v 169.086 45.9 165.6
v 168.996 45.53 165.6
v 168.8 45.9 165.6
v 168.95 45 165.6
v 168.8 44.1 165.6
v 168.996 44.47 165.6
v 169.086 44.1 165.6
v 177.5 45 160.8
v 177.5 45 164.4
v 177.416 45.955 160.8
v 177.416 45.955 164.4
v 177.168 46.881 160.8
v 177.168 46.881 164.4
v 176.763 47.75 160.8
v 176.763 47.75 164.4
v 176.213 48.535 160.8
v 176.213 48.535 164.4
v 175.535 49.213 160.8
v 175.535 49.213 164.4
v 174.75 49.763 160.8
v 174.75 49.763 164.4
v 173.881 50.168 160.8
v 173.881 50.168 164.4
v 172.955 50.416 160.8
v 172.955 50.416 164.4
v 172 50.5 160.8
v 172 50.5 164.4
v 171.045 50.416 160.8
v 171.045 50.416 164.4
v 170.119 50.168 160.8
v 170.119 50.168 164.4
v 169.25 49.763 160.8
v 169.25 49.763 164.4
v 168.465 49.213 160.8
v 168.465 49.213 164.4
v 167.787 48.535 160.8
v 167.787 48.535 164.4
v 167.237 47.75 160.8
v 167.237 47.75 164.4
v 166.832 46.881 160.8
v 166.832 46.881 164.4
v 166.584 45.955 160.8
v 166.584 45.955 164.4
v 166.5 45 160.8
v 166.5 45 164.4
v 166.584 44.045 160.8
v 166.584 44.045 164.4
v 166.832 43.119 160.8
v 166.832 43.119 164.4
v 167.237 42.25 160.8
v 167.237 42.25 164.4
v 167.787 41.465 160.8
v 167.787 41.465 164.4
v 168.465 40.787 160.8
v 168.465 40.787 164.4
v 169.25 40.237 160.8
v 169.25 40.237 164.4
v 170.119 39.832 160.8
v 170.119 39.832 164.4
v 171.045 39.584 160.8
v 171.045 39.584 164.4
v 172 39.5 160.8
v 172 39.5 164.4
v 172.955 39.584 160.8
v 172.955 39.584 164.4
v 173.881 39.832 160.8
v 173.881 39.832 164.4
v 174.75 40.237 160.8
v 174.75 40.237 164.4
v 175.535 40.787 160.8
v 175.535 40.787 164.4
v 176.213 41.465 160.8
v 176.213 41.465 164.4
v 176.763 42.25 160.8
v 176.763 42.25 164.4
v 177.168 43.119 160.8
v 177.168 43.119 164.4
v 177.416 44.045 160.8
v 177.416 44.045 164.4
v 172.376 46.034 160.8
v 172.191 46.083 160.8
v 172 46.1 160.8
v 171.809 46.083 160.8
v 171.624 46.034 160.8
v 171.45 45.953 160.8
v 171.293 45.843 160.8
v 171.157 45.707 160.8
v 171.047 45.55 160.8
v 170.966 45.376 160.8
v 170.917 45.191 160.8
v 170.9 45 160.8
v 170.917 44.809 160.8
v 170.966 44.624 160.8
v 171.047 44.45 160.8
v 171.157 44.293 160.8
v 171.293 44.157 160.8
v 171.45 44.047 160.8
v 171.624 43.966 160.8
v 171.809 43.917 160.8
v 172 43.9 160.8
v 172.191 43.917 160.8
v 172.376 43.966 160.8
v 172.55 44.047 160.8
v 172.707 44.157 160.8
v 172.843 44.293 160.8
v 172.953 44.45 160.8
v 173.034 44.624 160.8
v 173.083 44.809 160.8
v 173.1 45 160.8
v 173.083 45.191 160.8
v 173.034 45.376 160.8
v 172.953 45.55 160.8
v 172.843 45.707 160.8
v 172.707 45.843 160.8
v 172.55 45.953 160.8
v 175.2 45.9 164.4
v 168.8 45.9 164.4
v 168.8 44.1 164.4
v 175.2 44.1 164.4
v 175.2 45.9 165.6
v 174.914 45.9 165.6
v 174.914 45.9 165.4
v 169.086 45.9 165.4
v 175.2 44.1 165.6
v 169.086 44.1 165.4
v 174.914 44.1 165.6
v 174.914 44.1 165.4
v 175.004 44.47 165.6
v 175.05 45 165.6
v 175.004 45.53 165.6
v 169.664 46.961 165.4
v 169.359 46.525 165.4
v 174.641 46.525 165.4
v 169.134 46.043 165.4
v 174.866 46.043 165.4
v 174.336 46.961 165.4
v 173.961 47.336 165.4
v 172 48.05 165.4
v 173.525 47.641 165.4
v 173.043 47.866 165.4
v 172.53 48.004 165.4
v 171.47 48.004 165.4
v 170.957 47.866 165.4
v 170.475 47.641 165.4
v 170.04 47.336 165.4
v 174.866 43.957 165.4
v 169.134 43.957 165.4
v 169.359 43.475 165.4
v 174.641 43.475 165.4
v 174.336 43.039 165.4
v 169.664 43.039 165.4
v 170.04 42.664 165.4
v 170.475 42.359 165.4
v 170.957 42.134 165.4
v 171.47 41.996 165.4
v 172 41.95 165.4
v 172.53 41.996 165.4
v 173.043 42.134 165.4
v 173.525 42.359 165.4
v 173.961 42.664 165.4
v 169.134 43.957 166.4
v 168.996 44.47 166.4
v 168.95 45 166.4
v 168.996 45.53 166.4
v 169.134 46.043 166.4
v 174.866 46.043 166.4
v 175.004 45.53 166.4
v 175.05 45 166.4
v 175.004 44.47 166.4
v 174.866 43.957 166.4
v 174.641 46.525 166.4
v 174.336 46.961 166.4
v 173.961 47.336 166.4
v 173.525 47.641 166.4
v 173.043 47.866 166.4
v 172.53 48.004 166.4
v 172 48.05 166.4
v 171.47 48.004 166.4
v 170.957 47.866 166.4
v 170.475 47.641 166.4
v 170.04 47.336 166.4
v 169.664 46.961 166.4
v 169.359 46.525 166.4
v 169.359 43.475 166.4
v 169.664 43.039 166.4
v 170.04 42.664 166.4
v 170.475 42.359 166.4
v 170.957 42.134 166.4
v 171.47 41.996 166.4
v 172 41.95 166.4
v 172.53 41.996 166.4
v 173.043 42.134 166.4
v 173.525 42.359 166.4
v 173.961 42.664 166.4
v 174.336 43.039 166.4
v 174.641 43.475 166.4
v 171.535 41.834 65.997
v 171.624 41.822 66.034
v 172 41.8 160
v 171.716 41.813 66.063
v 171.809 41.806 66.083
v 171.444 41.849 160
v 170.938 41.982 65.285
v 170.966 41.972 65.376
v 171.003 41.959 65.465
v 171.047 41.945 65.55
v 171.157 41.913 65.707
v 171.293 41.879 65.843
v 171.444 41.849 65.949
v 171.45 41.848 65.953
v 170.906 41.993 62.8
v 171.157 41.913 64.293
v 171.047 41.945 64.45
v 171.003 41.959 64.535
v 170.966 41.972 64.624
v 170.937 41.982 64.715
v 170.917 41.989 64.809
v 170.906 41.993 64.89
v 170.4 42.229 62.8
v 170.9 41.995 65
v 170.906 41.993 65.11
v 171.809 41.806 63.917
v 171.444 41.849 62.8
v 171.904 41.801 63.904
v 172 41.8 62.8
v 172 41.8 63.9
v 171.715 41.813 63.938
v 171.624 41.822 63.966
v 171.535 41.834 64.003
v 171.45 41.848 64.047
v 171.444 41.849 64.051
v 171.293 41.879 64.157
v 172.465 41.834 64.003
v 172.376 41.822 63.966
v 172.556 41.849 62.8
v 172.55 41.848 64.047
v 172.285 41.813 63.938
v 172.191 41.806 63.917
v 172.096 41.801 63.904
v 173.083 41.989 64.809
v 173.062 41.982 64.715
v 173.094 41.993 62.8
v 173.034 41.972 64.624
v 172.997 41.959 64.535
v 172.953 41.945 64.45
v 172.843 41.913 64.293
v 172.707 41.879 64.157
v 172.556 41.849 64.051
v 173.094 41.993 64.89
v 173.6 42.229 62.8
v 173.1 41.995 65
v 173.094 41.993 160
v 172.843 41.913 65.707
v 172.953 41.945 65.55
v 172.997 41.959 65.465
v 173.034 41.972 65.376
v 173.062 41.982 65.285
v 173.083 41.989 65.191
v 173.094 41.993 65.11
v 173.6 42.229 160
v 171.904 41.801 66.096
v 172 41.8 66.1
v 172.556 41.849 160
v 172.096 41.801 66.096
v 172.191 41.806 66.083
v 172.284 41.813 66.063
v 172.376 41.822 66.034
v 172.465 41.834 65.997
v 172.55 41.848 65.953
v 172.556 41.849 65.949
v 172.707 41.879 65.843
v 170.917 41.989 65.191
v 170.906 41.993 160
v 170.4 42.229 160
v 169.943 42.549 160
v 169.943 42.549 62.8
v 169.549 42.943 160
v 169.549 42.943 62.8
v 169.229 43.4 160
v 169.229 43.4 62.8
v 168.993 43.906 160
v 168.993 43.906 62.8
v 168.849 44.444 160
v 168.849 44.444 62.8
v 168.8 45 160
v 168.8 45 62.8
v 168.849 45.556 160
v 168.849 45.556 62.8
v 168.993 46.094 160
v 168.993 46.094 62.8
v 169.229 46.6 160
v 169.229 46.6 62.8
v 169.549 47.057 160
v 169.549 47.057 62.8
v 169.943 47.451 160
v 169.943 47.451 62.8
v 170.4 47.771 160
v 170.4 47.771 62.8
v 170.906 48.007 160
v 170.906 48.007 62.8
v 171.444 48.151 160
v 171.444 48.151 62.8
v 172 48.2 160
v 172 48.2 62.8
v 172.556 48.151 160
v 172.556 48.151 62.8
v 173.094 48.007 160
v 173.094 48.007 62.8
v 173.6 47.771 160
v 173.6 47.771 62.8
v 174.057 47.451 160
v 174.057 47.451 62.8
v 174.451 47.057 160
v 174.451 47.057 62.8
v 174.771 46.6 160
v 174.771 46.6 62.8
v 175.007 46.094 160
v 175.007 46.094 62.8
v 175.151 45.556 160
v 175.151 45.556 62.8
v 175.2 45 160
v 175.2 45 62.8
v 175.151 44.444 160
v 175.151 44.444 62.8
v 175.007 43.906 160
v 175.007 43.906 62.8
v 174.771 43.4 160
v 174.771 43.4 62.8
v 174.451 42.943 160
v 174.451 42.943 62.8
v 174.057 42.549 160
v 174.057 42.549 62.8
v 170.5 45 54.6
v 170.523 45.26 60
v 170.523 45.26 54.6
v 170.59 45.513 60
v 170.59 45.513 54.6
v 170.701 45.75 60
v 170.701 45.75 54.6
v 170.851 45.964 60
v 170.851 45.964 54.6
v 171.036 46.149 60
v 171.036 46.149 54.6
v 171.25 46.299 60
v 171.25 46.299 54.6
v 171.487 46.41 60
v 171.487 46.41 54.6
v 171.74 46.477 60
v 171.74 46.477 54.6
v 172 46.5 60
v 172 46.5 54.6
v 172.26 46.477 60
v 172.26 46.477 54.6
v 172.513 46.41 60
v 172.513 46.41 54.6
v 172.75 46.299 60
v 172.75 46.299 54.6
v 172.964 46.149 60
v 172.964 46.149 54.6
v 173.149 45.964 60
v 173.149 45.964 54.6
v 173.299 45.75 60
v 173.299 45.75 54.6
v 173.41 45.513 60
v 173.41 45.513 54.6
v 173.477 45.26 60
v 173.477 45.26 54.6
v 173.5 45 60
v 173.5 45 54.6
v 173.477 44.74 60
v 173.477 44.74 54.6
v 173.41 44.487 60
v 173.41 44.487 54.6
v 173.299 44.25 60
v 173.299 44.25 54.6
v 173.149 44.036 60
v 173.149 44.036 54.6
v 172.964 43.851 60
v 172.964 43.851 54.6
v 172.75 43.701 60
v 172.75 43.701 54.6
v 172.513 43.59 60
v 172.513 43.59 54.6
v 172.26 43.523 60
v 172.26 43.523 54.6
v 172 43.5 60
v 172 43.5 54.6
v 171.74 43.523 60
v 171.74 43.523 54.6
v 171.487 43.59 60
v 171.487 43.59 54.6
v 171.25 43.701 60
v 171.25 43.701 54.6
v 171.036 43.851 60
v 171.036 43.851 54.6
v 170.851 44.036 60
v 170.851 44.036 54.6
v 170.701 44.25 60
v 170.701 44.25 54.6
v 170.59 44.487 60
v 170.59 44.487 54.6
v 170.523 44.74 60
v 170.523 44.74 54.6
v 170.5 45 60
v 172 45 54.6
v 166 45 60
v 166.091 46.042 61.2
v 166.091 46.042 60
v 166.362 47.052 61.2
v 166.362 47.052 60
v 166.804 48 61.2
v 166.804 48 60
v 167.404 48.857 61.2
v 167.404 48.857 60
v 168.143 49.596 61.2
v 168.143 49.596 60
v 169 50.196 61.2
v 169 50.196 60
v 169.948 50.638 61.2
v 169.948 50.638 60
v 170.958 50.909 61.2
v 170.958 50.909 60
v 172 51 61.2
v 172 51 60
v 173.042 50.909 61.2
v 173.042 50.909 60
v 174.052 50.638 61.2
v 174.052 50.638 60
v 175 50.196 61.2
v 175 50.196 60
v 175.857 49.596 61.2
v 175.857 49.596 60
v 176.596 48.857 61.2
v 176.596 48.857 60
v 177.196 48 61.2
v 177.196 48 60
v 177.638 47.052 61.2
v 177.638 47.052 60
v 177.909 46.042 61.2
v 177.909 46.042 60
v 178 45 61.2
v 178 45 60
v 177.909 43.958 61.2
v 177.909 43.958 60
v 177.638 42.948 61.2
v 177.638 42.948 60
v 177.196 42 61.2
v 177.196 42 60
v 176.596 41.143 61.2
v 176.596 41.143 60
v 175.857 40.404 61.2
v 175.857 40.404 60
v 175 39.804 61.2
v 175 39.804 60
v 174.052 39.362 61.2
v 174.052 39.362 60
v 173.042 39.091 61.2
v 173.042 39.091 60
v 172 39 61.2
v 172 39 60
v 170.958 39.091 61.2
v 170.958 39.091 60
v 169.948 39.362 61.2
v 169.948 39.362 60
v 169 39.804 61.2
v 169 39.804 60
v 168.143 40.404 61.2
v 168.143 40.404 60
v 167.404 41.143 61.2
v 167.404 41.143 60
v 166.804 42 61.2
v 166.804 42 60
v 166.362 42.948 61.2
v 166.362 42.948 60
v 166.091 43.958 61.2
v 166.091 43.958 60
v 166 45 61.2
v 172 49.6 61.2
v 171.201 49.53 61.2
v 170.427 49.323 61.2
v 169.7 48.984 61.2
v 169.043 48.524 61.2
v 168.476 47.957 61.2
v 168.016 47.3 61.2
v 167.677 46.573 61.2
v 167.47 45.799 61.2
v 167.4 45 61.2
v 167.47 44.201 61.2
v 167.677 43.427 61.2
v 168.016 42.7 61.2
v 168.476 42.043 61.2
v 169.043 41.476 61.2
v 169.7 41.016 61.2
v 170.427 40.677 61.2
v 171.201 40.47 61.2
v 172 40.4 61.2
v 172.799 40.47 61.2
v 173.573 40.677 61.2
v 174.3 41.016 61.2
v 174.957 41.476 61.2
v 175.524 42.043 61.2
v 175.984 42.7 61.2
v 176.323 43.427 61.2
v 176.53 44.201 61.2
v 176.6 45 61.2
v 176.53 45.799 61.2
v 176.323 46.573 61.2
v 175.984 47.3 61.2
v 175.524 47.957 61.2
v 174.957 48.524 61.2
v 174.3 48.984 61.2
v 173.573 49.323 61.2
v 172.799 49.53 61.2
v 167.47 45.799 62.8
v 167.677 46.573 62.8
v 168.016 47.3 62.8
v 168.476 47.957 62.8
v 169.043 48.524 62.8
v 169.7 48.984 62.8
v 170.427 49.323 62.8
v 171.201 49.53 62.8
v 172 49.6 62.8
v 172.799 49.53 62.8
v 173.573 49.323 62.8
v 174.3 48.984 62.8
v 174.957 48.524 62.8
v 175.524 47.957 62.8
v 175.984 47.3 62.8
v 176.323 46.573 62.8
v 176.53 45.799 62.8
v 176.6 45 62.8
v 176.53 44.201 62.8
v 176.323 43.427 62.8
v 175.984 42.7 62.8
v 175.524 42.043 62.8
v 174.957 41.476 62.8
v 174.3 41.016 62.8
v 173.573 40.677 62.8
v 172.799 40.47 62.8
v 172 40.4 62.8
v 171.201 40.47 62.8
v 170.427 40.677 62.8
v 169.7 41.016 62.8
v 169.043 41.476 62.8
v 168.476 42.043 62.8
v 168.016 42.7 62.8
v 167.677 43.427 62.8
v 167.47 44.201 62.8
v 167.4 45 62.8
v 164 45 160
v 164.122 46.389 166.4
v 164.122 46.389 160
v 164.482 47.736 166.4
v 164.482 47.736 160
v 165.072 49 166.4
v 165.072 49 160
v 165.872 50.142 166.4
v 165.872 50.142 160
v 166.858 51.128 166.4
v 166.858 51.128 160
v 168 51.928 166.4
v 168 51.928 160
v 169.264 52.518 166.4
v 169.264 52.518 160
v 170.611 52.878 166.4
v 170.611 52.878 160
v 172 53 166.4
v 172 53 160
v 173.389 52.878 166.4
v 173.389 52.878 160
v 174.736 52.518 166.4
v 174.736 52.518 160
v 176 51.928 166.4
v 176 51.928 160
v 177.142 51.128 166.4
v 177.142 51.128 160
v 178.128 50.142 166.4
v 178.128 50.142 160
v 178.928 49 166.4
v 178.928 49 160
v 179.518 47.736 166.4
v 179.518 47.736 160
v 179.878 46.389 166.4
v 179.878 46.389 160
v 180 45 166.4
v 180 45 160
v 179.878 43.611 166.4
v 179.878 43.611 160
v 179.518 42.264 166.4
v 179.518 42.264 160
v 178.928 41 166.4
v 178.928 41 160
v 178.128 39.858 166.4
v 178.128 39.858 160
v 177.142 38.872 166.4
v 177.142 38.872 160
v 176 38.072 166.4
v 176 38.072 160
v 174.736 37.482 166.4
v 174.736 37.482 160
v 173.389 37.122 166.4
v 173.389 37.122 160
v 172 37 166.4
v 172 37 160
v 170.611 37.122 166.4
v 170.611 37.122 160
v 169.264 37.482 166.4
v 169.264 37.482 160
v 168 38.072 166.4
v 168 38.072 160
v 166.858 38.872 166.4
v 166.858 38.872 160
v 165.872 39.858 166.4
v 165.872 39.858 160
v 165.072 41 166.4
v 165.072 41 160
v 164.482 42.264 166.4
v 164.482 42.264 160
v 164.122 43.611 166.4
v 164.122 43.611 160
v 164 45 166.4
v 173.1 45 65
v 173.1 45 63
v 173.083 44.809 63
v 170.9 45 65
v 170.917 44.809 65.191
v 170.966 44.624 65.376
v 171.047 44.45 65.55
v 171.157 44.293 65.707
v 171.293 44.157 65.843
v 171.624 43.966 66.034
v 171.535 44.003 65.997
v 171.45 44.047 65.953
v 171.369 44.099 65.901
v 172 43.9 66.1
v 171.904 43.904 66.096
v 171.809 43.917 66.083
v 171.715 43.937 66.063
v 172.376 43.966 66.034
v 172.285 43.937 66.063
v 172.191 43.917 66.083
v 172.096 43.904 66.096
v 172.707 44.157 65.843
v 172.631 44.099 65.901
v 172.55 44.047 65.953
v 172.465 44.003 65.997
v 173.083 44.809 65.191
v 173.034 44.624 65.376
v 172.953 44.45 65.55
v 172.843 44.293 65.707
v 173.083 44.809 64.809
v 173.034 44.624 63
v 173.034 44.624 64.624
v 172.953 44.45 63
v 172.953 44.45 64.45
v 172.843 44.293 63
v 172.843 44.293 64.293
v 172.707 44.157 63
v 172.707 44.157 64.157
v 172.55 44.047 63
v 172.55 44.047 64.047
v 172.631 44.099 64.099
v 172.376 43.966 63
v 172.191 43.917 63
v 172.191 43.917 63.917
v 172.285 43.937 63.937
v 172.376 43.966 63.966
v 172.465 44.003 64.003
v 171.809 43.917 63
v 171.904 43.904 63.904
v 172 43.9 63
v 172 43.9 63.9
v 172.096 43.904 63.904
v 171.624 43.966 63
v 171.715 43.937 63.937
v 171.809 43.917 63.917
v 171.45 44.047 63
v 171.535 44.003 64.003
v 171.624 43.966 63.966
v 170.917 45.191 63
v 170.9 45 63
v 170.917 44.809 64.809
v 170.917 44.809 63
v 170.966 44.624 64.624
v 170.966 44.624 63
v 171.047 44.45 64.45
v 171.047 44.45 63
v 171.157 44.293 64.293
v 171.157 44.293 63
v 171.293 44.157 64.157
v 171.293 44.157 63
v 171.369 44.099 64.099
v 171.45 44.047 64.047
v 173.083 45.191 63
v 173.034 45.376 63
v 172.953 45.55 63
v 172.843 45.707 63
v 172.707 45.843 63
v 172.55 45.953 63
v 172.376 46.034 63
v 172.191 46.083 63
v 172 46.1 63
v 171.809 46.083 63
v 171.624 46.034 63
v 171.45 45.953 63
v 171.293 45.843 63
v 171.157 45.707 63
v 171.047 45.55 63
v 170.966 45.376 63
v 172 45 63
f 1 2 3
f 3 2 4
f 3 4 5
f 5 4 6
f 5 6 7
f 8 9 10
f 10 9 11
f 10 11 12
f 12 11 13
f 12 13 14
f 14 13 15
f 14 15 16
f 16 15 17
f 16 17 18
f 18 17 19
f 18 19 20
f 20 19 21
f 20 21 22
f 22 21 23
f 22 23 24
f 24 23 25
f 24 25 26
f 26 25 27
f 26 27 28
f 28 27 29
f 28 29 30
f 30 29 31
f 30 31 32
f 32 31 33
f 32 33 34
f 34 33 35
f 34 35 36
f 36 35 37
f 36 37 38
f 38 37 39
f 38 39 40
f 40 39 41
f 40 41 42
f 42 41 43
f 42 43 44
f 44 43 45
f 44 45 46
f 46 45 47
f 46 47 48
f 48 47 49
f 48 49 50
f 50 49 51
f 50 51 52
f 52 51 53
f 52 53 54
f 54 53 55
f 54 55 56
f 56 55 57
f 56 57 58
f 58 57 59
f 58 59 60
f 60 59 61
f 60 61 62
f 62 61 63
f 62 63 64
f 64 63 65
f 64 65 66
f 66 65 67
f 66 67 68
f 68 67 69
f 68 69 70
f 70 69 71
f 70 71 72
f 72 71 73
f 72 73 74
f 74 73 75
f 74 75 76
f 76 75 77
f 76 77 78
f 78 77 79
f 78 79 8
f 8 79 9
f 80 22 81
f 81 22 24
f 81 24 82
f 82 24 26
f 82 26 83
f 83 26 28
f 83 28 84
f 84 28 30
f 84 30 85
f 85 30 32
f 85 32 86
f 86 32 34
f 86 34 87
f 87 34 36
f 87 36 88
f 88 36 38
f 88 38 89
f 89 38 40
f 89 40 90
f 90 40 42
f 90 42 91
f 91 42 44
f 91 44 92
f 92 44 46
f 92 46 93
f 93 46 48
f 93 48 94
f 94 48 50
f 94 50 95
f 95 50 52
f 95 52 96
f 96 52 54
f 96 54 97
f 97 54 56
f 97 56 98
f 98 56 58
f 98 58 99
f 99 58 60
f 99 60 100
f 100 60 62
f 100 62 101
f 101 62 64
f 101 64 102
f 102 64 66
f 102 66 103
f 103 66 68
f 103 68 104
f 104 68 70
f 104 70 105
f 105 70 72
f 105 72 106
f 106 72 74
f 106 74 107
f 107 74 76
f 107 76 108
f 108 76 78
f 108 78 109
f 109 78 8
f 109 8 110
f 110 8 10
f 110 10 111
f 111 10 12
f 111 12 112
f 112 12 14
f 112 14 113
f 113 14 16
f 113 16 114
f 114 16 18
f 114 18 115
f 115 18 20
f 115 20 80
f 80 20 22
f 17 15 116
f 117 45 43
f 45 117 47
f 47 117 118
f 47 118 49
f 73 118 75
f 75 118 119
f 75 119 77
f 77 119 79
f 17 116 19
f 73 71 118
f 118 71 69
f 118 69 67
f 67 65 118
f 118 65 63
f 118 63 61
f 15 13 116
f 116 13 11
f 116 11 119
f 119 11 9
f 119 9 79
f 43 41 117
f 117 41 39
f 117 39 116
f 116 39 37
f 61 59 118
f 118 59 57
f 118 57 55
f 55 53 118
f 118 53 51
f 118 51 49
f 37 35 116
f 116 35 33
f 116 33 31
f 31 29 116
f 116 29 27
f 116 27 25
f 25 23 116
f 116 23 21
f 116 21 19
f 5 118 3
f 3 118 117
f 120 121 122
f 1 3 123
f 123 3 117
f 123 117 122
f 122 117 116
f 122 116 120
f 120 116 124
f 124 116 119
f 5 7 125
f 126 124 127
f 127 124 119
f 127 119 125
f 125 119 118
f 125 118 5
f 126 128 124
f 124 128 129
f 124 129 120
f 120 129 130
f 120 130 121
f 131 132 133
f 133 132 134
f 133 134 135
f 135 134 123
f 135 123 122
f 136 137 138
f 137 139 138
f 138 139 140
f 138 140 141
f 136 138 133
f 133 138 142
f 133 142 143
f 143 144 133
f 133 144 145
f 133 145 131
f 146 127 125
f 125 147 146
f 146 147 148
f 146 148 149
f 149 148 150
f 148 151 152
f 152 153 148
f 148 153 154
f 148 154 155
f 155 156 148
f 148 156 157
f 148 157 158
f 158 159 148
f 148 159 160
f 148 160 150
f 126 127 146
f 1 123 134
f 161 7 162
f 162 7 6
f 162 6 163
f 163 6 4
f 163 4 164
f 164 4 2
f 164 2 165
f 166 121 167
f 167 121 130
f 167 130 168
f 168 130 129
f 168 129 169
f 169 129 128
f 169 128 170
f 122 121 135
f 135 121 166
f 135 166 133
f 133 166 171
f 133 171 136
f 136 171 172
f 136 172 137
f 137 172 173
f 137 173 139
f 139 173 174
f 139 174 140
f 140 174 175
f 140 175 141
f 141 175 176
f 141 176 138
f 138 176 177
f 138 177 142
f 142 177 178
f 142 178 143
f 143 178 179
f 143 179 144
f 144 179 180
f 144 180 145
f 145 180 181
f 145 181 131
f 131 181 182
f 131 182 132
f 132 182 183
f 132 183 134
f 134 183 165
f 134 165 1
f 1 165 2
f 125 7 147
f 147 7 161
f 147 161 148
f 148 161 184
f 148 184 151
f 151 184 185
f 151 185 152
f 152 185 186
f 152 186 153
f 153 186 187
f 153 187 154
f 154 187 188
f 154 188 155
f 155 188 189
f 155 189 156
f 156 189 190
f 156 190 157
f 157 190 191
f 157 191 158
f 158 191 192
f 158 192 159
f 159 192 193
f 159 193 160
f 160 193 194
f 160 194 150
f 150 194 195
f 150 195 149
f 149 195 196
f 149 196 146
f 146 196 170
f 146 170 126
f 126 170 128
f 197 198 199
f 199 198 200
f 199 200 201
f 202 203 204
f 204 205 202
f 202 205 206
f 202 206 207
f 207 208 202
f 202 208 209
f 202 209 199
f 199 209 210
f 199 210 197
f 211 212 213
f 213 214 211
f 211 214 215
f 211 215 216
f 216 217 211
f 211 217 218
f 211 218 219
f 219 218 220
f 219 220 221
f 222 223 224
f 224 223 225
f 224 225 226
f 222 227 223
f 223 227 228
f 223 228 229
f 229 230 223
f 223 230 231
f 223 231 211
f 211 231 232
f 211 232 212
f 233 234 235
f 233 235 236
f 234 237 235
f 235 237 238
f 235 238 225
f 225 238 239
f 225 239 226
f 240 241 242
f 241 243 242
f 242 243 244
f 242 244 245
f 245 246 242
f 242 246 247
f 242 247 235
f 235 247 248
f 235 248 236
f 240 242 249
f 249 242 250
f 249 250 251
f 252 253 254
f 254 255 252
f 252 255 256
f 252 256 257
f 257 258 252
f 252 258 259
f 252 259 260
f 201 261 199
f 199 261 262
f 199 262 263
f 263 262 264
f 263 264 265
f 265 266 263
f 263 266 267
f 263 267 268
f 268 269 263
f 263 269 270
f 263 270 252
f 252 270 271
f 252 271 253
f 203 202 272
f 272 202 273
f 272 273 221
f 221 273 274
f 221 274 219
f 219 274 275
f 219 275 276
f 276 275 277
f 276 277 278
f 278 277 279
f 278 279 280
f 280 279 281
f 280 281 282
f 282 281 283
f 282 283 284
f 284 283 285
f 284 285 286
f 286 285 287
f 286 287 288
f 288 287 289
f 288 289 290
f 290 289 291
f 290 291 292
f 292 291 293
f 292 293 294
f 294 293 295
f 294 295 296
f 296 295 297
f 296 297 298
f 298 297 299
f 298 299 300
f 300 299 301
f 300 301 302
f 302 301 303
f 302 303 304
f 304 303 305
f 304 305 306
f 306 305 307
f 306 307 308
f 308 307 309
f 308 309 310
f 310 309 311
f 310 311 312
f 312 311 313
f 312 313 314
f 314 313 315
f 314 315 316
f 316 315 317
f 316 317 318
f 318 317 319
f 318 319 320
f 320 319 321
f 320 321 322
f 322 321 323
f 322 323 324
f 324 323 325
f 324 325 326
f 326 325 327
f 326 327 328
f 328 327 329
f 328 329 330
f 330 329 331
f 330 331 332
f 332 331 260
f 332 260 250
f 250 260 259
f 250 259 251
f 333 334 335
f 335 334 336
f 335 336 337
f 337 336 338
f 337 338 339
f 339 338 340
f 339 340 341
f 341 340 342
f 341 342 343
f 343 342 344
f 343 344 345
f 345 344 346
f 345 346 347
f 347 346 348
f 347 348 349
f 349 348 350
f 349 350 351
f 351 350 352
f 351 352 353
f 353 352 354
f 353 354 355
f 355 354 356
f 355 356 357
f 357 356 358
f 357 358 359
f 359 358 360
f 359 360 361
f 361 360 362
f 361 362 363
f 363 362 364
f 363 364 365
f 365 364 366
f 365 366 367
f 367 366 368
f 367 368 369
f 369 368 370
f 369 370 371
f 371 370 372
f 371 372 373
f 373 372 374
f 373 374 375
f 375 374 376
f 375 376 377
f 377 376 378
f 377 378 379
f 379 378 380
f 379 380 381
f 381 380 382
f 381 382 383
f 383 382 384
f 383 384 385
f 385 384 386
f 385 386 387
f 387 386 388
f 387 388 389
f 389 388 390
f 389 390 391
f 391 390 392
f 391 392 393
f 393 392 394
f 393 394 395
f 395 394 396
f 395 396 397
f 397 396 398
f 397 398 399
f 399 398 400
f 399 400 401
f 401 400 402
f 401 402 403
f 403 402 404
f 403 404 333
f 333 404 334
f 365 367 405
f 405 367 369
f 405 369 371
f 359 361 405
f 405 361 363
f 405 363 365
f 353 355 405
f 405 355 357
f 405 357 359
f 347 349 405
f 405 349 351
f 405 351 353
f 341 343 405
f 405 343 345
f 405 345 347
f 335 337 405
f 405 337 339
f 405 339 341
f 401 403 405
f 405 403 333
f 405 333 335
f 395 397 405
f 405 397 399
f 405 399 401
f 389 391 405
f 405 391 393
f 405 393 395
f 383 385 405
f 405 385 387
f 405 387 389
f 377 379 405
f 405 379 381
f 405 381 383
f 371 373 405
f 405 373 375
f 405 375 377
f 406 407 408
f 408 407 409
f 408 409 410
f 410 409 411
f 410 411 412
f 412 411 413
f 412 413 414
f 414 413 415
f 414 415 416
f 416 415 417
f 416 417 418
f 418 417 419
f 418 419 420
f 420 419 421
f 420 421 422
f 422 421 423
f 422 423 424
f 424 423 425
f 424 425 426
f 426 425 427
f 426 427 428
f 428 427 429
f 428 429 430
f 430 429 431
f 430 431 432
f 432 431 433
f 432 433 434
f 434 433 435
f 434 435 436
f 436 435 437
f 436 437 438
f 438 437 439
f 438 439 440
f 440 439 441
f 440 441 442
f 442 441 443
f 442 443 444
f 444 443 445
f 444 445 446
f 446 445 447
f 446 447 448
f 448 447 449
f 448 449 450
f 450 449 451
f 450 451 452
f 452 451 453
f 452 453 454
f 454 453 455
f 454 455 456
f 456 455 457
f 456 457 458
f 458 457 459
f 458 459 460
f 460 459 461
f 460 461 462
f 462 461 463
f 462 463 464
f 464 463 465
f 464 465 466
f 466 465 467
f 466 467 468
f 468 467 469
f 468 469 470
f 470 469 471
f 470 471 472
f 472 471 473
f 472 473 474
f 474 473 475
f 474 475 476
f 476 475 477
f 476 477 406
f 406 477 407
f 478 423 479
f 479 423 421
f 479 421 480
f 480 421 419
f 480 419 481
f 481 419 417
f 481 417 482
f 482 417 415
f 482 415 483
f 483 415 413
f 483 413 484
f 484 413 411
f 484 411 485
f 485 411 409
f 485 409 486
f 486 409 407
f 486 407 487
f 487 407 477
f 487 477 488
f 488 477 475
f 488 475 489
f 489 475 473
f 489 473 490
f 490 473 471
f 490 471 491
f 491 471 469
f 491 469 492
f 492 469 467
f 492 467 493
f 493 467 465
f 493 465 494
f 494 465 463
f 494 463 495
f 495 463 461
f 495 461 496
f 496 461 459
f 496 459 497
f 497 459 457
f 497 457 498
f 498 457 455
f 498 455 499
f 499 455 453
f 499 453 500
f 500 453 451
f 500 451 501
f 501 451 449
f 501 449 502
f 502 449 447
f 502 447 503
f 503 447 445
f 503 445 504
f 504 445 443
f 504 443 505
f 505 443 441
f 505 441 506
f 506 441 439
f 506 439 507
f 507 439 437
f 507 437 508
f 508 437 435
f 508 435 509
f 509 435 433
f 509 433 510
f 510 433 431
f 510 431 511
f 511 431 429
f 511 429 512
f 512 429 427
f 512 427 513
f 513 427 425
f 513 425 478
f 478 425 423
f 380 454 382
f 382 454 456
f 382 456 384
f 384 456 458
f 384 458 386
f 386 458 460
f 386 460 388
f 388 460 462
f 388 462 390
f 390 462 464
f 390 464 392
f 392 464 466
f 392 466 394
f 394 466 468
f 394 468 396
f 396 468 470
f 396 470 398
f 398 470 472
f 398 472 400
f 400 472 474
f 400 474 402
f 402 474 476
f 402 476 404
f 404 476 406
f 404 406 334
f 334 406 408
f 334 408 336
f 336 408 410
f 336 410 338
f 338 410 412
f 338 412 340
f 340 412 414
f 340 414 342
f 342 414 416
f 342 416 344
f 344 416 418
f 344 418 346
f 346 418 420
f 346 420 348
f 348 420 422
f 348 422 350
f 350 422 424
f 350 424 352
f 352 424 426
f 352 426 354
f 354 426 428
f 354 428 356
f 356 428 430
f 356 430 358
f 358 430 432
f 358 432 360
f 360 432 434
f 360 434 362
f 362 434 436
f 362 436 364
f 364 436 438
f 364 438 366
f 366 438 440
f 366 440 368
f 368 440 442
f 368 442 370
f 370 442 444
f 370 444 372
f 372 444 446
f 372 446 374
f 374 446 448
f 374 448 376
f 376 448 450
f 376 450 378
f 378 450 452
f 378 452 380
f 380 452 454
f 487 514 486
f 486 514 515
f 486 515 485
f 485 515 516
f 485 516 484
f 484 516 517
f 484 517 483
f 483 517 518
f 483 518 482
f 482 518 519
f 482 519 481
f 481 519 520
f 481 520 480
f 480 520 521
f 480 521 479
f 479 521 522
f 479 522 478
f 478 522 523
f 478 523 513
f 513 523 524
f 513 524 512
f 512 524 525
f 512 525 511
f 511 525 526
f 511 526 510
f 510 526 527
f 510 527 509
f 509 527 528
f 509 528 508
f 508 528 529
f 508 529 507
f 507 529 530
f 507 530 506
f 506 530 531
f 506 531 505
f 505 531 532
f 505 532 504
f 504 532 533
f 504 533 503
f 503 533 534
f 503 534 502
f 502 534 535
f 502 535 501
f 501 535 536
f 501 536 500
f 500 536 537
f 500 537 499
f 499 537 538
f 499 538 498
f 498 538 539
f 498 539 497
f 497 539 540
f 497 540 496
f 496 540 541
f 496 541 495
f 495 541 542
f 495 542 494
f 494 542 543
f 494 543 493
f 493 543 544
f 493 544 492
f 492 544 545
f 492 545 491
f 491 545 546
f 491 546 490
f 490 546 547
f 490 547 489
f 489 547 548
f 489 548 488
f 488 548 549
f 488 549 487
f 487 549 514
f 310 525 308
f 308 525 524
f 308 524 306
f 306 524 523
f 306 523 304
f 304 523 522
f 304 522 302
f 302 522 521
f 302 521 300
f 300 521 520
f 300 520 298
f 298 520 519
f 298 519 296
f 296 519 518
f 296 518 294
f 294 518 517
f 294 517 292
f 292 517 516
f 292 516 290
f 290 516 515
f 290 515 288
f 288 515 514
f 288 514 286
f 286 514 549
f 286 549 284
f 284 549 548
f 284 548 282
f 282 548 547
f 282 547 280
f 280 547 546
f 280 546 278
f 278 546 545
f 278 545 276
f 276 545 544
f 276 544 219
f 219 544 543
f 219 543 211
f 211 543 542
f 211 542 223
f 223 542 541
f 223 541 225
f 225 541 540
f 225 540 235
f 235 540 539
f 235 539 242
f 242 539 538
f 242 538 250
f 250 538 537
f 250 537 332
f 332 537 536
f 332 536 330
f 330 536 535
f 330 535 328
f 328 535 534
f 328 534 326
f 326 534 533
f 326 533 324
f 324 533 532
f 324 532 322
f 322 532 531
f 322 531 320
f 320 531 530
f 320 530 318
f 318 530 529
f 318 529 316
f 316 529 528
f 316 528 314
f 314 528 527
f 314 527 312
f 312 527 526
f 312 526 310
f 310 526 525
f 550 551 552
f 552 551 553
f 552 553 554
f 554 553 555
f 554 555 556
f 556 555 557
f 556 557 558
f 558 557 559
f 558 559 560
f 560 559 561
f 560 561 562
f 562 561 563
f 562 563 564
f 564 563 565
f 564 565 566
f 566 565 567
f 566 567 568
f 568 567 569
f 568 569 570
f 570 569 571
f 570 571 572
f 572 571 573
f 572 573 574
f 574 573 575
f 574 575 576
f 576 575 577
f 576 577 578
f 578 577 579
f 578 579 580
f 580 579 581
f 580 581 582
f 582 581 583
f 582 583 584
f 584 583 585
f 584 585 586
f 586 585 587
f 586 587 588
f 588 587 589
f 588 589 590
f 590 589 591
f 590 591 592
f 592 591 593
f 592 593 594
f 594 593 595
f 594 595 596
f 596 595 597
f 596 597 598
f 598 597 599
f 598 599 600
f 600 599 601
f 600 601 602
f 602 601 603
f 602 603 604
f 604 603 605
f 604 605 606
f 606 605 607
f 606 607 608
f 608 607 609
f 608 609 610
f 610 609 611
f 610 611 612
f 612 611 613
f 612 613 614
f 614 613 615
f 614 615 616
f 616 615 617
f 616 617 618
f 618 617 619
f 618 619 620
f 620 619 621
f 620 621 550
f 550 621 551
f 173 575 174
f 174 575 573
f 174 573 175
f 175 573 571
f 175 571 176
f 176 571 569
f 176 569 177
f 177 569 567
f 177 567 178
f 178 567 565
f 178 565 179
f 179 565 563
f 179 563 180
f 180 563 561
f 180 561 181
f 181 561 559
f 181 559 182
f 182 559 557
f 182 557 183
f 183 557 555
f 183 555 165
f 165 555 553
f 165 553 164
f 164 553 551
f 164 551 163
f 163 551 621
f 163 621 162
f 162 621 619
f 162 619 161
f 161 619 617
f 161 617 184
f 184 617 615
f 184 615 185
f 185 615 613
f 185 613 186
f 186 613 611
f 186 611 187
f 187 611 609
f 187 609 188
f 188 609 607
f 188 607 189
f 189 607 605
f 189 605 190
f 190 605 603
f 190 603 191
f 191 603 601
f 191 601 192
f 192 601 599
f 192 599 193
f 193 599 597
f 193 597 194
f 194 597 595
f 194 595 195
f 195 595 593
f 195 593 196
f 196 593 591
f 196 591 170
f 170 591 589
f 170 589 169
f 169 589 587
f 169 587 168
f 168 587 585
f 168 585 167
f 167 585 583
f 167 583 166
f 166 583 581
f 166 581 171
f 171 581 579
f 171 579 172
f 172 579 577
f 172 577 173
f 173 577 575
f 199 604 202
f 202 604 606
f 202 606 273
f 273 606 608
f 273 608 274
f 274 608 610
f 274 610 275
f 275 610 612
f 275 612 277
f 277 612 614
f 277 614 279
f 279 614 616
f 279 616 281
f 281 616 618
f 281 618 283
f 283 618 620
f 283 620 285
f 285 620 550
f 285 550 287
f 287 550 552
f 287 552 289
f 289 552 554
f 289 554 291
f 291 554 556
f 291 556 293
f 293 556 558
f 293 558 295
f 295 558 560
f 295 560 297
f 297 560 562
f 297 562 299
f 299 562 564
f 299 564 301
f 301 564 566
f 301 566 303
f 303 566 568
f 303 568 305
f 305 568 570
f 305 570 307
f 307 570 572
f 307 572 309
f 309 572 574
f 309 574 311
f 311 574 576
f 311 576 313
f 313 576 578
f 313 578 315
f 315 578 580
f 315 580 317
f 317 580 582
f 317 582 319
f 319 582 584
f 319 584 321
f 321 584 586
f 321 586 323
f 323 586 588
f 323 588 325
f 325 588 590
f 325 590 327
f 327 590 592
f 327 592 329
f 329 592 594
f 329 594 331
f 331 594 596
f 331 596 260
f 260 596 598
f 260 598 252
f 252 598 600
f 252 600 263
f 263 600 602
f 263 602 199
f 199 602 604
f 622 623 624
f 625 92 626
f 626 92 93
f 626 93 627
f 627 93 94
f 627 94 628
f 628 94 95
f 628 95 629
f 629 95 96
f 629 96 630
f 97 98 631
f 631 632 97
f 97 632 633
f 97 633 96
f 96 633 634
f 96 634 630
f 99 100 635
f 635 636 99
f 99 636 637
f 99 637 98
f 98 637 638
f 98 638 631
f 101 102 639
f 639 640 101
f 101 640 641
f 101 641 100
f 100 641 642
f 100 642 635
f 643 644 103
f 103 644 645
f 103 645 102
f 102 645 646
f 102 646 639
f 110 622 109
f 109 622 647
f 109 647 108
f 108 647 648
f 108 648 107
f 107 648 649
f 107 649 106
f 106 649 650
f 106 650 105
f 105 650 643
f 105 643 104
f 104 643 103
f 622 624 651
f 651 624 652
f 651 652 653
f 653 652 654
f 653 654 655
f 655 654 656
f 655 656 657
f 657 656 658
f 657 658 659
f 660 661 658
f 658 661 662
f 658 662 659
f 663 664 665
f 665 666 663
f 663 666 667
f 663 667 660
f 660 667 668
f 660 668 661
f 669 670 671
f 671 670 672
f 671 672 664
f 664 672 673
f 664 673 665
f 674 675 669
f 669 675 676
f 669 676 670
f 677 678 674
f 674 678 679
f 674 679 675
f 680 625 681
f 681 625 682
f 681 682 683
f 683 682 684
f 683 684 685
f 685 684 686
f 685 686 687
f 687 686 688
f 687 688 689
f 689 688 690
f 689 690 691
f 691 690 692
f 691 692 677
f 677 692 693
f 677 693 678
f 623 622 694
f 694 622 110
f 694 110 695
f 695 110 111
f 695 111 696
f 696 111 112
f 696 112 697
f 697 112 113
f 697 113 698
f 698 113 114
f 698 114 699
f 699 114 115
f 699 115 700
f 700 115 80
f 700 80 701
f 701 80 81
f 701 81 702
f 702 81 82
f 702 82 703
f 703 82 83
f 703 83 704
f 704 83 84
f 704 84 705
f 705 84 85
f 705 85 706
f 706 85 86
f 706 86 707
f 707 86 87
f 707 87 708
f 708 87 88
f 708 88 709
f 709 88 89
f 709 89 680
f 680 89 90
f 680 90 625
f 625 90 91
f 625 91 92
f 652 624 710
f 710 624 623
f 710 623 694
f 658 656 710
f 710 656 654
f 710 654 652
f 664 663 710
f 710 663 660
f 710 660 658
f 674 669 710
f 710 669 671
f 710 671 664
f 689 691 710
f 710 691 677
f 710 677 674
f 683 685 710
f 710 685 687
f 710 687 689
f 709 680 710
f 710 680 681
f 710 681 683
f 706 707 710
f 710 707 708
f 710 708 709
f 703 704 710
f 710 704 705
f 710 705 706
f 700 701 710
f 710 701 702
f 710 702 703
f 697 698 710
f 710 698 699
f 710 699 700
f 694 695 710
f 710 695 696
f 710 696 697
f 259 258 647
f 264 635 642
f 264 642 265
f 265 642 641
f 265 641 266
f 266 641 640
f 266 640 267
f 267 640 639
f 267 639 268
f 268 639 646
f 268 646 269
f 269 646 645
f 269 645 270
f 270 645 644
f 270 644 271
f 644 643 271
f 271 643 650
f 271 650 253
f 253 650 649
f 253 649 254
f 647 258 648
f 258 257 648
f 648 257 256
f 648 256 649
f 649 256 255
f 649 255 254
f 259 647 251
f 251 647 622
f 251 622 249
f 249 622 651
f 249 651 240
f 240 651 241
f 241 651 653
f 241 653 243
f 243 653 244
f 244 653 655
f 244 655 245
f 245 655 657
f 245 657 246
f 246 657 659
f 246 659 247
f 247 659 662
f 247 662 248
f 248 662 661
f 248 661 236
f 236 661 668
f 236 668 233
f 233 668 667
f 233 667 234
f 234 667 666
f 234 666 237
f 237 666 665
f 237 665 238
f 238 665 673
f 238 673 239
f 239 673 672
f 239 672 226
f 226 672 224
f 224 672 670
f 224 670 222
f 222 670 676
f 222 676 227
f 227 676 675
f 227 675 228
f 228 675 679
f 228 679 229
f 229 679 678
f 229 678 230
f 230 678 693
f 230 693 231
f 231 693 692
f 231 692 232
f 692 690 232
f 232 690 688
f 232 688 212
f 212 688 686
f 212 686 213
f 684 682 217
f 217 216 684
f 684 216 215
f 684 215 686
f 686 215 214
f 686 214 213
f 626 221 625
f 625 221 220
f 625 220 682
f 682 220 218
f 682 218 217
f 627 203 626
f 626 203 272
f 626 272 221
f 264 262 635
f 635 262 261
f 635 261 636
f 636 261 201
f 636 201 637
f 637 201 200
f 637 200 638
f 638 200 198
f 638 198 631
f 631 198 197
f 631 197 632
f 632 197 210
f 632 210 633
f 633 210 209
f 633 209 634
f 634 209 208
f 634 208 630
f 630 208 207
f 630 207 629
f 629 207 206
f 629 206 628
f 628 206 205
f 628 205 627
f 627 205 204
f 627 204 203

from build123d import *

# Parameters (mm, degrees)
SKETCH1_R                    = 1.5
SOCKET_PIN_DEPTH             = 5.5
SKETCH2_R                    = 6
MAST_FLANGE_DEPTH            = 1.2
SKETCH3_R                    = 4.6
MAST_FLANGE_STEP_DEPTH       = 1.6
SKETCH4_R                    = 3.2
MAST_TUBE_DEPTH              = 97.8
SKETCH5_R                    = 8
BEACON_BASE_DEPTH            = 6.4
SKETCH6_R                    = 5.5
SOLDER_CHAMBER_DEPTH         = 1.8
SKETCH7_W                    = 6.4
SKETCH7_H                    = 1.8
LED_LEG_SLOT_DEPTH           = 0.7
SKETCH8_R                    = 3.05
LED_FLANGE_COUNTERBORE_DEPTH = 0.7
SKETCH9_R                    = 1.1
WIRE_CHANNEL_DEPTH           = 49
SKETCH10_R                   = 1.1
WIRE_EXIT_DEPTH              = 2.25


with BuildPart() as part:
    # Sketch1 → Socket_pin (new body)
    with BuildSketch(Plane.XY.offset(54.6)):
        with Locations((172, 45)):
            Circle(SKETCH1_R)
    extrude(amount=SOCKET_PIN_DEPTH)

    # Sketch2 → Mast_flange (add)
    with BuildSketch(Plane.XY.offset(60)):
        with Locations((172, 45)):
            Circle(SKETCH2_R)
    extrude(amount=MAST_FLANGE_DEPTH)

    # Sketch3 → Mast_flange_step (add)
    with BuildSketch(Plane.XY.offset(61.2)):
        with Locations((172, 45)):
            Circle(SKETCH3_R)
    extrude(amount=MAST_FLANGE_STEP_DEPTH)

    # Sketch4 → Mast_tube (add)
    with BuildSketch(Plane.XY.offset(62.7)):
        with Locations((172, 45)):
            Circle(SKETCH4_R)
    extrude(amount=MAST_TUBE_DEPTH)

    # Sketch5 → Beacon_base (add)
    with BuildSketch(Plane.XY.offset(160)):
        with Locations((172, 45)):
            Circle(SKETCH5_R)
    extrude(amount=BEACON_BASE_DEPTH)

    # Sketch6 → Solder_chamber (cut, symmetric)
    with BuildSketch(Plane.XY.offset(162.6)):
        with Locations((172, 45)):
            Circle(SKETCH6_R)
    extrude(amount=SOLDER_CHAMBER_DEPTH, both=True, mode=Mode.SUBTRACT)

    # Sketch7 → LED_leg_slot (cut, symmetric)
    with BuildSketch(Plane.XY.offset(164.9)):
        with Locations((172, 45)):
            Rectangle(SKETCH7_W, SKETCH7_H)
    extrude(amount=LED_LEG_SLOT_DEPTH, both=True, mode=Mode.SUBTRACT)

    # Sketch8 → LED_flange_counterbore (cut, symmetric)
    with BuildSketch(Plane.XY.offset(166.1)):
        with Locations((172, 45)):
            Circle(SKETCH8_R)
    extrude(amount=LED_FLANGE_COUNTERBORE_DEPTH, both=True, mode=Mode.SUBTRACT)

    # Sketch9 → Wire_channel (cut, symmetric)
    with BuildSketch(Plane.XY.offset(112)):
        with Locations((172, 45)):
            Circle(SKETCH9_R)
    extrude(amount=WIRE_CHANNEL_DEPTH, both=True, mode=Mode.SUBTRACT)

    # Sketch10 → Wire_exit (cut, symmetric)
    with BuildSketch(Plane(origin=(0, 42.75, 0), x_dir=(1, 0, 0), z_dir=(0, 1, 0))):
        with Locations(Location((172, -65, 0), (0, 0, 270))):
            Circle(SKETCH10_R)
    extrude(amount=WIRE_EXIT_DEPTH, both=True, mode=Mode.SUBTRACT)


solid = part.part
